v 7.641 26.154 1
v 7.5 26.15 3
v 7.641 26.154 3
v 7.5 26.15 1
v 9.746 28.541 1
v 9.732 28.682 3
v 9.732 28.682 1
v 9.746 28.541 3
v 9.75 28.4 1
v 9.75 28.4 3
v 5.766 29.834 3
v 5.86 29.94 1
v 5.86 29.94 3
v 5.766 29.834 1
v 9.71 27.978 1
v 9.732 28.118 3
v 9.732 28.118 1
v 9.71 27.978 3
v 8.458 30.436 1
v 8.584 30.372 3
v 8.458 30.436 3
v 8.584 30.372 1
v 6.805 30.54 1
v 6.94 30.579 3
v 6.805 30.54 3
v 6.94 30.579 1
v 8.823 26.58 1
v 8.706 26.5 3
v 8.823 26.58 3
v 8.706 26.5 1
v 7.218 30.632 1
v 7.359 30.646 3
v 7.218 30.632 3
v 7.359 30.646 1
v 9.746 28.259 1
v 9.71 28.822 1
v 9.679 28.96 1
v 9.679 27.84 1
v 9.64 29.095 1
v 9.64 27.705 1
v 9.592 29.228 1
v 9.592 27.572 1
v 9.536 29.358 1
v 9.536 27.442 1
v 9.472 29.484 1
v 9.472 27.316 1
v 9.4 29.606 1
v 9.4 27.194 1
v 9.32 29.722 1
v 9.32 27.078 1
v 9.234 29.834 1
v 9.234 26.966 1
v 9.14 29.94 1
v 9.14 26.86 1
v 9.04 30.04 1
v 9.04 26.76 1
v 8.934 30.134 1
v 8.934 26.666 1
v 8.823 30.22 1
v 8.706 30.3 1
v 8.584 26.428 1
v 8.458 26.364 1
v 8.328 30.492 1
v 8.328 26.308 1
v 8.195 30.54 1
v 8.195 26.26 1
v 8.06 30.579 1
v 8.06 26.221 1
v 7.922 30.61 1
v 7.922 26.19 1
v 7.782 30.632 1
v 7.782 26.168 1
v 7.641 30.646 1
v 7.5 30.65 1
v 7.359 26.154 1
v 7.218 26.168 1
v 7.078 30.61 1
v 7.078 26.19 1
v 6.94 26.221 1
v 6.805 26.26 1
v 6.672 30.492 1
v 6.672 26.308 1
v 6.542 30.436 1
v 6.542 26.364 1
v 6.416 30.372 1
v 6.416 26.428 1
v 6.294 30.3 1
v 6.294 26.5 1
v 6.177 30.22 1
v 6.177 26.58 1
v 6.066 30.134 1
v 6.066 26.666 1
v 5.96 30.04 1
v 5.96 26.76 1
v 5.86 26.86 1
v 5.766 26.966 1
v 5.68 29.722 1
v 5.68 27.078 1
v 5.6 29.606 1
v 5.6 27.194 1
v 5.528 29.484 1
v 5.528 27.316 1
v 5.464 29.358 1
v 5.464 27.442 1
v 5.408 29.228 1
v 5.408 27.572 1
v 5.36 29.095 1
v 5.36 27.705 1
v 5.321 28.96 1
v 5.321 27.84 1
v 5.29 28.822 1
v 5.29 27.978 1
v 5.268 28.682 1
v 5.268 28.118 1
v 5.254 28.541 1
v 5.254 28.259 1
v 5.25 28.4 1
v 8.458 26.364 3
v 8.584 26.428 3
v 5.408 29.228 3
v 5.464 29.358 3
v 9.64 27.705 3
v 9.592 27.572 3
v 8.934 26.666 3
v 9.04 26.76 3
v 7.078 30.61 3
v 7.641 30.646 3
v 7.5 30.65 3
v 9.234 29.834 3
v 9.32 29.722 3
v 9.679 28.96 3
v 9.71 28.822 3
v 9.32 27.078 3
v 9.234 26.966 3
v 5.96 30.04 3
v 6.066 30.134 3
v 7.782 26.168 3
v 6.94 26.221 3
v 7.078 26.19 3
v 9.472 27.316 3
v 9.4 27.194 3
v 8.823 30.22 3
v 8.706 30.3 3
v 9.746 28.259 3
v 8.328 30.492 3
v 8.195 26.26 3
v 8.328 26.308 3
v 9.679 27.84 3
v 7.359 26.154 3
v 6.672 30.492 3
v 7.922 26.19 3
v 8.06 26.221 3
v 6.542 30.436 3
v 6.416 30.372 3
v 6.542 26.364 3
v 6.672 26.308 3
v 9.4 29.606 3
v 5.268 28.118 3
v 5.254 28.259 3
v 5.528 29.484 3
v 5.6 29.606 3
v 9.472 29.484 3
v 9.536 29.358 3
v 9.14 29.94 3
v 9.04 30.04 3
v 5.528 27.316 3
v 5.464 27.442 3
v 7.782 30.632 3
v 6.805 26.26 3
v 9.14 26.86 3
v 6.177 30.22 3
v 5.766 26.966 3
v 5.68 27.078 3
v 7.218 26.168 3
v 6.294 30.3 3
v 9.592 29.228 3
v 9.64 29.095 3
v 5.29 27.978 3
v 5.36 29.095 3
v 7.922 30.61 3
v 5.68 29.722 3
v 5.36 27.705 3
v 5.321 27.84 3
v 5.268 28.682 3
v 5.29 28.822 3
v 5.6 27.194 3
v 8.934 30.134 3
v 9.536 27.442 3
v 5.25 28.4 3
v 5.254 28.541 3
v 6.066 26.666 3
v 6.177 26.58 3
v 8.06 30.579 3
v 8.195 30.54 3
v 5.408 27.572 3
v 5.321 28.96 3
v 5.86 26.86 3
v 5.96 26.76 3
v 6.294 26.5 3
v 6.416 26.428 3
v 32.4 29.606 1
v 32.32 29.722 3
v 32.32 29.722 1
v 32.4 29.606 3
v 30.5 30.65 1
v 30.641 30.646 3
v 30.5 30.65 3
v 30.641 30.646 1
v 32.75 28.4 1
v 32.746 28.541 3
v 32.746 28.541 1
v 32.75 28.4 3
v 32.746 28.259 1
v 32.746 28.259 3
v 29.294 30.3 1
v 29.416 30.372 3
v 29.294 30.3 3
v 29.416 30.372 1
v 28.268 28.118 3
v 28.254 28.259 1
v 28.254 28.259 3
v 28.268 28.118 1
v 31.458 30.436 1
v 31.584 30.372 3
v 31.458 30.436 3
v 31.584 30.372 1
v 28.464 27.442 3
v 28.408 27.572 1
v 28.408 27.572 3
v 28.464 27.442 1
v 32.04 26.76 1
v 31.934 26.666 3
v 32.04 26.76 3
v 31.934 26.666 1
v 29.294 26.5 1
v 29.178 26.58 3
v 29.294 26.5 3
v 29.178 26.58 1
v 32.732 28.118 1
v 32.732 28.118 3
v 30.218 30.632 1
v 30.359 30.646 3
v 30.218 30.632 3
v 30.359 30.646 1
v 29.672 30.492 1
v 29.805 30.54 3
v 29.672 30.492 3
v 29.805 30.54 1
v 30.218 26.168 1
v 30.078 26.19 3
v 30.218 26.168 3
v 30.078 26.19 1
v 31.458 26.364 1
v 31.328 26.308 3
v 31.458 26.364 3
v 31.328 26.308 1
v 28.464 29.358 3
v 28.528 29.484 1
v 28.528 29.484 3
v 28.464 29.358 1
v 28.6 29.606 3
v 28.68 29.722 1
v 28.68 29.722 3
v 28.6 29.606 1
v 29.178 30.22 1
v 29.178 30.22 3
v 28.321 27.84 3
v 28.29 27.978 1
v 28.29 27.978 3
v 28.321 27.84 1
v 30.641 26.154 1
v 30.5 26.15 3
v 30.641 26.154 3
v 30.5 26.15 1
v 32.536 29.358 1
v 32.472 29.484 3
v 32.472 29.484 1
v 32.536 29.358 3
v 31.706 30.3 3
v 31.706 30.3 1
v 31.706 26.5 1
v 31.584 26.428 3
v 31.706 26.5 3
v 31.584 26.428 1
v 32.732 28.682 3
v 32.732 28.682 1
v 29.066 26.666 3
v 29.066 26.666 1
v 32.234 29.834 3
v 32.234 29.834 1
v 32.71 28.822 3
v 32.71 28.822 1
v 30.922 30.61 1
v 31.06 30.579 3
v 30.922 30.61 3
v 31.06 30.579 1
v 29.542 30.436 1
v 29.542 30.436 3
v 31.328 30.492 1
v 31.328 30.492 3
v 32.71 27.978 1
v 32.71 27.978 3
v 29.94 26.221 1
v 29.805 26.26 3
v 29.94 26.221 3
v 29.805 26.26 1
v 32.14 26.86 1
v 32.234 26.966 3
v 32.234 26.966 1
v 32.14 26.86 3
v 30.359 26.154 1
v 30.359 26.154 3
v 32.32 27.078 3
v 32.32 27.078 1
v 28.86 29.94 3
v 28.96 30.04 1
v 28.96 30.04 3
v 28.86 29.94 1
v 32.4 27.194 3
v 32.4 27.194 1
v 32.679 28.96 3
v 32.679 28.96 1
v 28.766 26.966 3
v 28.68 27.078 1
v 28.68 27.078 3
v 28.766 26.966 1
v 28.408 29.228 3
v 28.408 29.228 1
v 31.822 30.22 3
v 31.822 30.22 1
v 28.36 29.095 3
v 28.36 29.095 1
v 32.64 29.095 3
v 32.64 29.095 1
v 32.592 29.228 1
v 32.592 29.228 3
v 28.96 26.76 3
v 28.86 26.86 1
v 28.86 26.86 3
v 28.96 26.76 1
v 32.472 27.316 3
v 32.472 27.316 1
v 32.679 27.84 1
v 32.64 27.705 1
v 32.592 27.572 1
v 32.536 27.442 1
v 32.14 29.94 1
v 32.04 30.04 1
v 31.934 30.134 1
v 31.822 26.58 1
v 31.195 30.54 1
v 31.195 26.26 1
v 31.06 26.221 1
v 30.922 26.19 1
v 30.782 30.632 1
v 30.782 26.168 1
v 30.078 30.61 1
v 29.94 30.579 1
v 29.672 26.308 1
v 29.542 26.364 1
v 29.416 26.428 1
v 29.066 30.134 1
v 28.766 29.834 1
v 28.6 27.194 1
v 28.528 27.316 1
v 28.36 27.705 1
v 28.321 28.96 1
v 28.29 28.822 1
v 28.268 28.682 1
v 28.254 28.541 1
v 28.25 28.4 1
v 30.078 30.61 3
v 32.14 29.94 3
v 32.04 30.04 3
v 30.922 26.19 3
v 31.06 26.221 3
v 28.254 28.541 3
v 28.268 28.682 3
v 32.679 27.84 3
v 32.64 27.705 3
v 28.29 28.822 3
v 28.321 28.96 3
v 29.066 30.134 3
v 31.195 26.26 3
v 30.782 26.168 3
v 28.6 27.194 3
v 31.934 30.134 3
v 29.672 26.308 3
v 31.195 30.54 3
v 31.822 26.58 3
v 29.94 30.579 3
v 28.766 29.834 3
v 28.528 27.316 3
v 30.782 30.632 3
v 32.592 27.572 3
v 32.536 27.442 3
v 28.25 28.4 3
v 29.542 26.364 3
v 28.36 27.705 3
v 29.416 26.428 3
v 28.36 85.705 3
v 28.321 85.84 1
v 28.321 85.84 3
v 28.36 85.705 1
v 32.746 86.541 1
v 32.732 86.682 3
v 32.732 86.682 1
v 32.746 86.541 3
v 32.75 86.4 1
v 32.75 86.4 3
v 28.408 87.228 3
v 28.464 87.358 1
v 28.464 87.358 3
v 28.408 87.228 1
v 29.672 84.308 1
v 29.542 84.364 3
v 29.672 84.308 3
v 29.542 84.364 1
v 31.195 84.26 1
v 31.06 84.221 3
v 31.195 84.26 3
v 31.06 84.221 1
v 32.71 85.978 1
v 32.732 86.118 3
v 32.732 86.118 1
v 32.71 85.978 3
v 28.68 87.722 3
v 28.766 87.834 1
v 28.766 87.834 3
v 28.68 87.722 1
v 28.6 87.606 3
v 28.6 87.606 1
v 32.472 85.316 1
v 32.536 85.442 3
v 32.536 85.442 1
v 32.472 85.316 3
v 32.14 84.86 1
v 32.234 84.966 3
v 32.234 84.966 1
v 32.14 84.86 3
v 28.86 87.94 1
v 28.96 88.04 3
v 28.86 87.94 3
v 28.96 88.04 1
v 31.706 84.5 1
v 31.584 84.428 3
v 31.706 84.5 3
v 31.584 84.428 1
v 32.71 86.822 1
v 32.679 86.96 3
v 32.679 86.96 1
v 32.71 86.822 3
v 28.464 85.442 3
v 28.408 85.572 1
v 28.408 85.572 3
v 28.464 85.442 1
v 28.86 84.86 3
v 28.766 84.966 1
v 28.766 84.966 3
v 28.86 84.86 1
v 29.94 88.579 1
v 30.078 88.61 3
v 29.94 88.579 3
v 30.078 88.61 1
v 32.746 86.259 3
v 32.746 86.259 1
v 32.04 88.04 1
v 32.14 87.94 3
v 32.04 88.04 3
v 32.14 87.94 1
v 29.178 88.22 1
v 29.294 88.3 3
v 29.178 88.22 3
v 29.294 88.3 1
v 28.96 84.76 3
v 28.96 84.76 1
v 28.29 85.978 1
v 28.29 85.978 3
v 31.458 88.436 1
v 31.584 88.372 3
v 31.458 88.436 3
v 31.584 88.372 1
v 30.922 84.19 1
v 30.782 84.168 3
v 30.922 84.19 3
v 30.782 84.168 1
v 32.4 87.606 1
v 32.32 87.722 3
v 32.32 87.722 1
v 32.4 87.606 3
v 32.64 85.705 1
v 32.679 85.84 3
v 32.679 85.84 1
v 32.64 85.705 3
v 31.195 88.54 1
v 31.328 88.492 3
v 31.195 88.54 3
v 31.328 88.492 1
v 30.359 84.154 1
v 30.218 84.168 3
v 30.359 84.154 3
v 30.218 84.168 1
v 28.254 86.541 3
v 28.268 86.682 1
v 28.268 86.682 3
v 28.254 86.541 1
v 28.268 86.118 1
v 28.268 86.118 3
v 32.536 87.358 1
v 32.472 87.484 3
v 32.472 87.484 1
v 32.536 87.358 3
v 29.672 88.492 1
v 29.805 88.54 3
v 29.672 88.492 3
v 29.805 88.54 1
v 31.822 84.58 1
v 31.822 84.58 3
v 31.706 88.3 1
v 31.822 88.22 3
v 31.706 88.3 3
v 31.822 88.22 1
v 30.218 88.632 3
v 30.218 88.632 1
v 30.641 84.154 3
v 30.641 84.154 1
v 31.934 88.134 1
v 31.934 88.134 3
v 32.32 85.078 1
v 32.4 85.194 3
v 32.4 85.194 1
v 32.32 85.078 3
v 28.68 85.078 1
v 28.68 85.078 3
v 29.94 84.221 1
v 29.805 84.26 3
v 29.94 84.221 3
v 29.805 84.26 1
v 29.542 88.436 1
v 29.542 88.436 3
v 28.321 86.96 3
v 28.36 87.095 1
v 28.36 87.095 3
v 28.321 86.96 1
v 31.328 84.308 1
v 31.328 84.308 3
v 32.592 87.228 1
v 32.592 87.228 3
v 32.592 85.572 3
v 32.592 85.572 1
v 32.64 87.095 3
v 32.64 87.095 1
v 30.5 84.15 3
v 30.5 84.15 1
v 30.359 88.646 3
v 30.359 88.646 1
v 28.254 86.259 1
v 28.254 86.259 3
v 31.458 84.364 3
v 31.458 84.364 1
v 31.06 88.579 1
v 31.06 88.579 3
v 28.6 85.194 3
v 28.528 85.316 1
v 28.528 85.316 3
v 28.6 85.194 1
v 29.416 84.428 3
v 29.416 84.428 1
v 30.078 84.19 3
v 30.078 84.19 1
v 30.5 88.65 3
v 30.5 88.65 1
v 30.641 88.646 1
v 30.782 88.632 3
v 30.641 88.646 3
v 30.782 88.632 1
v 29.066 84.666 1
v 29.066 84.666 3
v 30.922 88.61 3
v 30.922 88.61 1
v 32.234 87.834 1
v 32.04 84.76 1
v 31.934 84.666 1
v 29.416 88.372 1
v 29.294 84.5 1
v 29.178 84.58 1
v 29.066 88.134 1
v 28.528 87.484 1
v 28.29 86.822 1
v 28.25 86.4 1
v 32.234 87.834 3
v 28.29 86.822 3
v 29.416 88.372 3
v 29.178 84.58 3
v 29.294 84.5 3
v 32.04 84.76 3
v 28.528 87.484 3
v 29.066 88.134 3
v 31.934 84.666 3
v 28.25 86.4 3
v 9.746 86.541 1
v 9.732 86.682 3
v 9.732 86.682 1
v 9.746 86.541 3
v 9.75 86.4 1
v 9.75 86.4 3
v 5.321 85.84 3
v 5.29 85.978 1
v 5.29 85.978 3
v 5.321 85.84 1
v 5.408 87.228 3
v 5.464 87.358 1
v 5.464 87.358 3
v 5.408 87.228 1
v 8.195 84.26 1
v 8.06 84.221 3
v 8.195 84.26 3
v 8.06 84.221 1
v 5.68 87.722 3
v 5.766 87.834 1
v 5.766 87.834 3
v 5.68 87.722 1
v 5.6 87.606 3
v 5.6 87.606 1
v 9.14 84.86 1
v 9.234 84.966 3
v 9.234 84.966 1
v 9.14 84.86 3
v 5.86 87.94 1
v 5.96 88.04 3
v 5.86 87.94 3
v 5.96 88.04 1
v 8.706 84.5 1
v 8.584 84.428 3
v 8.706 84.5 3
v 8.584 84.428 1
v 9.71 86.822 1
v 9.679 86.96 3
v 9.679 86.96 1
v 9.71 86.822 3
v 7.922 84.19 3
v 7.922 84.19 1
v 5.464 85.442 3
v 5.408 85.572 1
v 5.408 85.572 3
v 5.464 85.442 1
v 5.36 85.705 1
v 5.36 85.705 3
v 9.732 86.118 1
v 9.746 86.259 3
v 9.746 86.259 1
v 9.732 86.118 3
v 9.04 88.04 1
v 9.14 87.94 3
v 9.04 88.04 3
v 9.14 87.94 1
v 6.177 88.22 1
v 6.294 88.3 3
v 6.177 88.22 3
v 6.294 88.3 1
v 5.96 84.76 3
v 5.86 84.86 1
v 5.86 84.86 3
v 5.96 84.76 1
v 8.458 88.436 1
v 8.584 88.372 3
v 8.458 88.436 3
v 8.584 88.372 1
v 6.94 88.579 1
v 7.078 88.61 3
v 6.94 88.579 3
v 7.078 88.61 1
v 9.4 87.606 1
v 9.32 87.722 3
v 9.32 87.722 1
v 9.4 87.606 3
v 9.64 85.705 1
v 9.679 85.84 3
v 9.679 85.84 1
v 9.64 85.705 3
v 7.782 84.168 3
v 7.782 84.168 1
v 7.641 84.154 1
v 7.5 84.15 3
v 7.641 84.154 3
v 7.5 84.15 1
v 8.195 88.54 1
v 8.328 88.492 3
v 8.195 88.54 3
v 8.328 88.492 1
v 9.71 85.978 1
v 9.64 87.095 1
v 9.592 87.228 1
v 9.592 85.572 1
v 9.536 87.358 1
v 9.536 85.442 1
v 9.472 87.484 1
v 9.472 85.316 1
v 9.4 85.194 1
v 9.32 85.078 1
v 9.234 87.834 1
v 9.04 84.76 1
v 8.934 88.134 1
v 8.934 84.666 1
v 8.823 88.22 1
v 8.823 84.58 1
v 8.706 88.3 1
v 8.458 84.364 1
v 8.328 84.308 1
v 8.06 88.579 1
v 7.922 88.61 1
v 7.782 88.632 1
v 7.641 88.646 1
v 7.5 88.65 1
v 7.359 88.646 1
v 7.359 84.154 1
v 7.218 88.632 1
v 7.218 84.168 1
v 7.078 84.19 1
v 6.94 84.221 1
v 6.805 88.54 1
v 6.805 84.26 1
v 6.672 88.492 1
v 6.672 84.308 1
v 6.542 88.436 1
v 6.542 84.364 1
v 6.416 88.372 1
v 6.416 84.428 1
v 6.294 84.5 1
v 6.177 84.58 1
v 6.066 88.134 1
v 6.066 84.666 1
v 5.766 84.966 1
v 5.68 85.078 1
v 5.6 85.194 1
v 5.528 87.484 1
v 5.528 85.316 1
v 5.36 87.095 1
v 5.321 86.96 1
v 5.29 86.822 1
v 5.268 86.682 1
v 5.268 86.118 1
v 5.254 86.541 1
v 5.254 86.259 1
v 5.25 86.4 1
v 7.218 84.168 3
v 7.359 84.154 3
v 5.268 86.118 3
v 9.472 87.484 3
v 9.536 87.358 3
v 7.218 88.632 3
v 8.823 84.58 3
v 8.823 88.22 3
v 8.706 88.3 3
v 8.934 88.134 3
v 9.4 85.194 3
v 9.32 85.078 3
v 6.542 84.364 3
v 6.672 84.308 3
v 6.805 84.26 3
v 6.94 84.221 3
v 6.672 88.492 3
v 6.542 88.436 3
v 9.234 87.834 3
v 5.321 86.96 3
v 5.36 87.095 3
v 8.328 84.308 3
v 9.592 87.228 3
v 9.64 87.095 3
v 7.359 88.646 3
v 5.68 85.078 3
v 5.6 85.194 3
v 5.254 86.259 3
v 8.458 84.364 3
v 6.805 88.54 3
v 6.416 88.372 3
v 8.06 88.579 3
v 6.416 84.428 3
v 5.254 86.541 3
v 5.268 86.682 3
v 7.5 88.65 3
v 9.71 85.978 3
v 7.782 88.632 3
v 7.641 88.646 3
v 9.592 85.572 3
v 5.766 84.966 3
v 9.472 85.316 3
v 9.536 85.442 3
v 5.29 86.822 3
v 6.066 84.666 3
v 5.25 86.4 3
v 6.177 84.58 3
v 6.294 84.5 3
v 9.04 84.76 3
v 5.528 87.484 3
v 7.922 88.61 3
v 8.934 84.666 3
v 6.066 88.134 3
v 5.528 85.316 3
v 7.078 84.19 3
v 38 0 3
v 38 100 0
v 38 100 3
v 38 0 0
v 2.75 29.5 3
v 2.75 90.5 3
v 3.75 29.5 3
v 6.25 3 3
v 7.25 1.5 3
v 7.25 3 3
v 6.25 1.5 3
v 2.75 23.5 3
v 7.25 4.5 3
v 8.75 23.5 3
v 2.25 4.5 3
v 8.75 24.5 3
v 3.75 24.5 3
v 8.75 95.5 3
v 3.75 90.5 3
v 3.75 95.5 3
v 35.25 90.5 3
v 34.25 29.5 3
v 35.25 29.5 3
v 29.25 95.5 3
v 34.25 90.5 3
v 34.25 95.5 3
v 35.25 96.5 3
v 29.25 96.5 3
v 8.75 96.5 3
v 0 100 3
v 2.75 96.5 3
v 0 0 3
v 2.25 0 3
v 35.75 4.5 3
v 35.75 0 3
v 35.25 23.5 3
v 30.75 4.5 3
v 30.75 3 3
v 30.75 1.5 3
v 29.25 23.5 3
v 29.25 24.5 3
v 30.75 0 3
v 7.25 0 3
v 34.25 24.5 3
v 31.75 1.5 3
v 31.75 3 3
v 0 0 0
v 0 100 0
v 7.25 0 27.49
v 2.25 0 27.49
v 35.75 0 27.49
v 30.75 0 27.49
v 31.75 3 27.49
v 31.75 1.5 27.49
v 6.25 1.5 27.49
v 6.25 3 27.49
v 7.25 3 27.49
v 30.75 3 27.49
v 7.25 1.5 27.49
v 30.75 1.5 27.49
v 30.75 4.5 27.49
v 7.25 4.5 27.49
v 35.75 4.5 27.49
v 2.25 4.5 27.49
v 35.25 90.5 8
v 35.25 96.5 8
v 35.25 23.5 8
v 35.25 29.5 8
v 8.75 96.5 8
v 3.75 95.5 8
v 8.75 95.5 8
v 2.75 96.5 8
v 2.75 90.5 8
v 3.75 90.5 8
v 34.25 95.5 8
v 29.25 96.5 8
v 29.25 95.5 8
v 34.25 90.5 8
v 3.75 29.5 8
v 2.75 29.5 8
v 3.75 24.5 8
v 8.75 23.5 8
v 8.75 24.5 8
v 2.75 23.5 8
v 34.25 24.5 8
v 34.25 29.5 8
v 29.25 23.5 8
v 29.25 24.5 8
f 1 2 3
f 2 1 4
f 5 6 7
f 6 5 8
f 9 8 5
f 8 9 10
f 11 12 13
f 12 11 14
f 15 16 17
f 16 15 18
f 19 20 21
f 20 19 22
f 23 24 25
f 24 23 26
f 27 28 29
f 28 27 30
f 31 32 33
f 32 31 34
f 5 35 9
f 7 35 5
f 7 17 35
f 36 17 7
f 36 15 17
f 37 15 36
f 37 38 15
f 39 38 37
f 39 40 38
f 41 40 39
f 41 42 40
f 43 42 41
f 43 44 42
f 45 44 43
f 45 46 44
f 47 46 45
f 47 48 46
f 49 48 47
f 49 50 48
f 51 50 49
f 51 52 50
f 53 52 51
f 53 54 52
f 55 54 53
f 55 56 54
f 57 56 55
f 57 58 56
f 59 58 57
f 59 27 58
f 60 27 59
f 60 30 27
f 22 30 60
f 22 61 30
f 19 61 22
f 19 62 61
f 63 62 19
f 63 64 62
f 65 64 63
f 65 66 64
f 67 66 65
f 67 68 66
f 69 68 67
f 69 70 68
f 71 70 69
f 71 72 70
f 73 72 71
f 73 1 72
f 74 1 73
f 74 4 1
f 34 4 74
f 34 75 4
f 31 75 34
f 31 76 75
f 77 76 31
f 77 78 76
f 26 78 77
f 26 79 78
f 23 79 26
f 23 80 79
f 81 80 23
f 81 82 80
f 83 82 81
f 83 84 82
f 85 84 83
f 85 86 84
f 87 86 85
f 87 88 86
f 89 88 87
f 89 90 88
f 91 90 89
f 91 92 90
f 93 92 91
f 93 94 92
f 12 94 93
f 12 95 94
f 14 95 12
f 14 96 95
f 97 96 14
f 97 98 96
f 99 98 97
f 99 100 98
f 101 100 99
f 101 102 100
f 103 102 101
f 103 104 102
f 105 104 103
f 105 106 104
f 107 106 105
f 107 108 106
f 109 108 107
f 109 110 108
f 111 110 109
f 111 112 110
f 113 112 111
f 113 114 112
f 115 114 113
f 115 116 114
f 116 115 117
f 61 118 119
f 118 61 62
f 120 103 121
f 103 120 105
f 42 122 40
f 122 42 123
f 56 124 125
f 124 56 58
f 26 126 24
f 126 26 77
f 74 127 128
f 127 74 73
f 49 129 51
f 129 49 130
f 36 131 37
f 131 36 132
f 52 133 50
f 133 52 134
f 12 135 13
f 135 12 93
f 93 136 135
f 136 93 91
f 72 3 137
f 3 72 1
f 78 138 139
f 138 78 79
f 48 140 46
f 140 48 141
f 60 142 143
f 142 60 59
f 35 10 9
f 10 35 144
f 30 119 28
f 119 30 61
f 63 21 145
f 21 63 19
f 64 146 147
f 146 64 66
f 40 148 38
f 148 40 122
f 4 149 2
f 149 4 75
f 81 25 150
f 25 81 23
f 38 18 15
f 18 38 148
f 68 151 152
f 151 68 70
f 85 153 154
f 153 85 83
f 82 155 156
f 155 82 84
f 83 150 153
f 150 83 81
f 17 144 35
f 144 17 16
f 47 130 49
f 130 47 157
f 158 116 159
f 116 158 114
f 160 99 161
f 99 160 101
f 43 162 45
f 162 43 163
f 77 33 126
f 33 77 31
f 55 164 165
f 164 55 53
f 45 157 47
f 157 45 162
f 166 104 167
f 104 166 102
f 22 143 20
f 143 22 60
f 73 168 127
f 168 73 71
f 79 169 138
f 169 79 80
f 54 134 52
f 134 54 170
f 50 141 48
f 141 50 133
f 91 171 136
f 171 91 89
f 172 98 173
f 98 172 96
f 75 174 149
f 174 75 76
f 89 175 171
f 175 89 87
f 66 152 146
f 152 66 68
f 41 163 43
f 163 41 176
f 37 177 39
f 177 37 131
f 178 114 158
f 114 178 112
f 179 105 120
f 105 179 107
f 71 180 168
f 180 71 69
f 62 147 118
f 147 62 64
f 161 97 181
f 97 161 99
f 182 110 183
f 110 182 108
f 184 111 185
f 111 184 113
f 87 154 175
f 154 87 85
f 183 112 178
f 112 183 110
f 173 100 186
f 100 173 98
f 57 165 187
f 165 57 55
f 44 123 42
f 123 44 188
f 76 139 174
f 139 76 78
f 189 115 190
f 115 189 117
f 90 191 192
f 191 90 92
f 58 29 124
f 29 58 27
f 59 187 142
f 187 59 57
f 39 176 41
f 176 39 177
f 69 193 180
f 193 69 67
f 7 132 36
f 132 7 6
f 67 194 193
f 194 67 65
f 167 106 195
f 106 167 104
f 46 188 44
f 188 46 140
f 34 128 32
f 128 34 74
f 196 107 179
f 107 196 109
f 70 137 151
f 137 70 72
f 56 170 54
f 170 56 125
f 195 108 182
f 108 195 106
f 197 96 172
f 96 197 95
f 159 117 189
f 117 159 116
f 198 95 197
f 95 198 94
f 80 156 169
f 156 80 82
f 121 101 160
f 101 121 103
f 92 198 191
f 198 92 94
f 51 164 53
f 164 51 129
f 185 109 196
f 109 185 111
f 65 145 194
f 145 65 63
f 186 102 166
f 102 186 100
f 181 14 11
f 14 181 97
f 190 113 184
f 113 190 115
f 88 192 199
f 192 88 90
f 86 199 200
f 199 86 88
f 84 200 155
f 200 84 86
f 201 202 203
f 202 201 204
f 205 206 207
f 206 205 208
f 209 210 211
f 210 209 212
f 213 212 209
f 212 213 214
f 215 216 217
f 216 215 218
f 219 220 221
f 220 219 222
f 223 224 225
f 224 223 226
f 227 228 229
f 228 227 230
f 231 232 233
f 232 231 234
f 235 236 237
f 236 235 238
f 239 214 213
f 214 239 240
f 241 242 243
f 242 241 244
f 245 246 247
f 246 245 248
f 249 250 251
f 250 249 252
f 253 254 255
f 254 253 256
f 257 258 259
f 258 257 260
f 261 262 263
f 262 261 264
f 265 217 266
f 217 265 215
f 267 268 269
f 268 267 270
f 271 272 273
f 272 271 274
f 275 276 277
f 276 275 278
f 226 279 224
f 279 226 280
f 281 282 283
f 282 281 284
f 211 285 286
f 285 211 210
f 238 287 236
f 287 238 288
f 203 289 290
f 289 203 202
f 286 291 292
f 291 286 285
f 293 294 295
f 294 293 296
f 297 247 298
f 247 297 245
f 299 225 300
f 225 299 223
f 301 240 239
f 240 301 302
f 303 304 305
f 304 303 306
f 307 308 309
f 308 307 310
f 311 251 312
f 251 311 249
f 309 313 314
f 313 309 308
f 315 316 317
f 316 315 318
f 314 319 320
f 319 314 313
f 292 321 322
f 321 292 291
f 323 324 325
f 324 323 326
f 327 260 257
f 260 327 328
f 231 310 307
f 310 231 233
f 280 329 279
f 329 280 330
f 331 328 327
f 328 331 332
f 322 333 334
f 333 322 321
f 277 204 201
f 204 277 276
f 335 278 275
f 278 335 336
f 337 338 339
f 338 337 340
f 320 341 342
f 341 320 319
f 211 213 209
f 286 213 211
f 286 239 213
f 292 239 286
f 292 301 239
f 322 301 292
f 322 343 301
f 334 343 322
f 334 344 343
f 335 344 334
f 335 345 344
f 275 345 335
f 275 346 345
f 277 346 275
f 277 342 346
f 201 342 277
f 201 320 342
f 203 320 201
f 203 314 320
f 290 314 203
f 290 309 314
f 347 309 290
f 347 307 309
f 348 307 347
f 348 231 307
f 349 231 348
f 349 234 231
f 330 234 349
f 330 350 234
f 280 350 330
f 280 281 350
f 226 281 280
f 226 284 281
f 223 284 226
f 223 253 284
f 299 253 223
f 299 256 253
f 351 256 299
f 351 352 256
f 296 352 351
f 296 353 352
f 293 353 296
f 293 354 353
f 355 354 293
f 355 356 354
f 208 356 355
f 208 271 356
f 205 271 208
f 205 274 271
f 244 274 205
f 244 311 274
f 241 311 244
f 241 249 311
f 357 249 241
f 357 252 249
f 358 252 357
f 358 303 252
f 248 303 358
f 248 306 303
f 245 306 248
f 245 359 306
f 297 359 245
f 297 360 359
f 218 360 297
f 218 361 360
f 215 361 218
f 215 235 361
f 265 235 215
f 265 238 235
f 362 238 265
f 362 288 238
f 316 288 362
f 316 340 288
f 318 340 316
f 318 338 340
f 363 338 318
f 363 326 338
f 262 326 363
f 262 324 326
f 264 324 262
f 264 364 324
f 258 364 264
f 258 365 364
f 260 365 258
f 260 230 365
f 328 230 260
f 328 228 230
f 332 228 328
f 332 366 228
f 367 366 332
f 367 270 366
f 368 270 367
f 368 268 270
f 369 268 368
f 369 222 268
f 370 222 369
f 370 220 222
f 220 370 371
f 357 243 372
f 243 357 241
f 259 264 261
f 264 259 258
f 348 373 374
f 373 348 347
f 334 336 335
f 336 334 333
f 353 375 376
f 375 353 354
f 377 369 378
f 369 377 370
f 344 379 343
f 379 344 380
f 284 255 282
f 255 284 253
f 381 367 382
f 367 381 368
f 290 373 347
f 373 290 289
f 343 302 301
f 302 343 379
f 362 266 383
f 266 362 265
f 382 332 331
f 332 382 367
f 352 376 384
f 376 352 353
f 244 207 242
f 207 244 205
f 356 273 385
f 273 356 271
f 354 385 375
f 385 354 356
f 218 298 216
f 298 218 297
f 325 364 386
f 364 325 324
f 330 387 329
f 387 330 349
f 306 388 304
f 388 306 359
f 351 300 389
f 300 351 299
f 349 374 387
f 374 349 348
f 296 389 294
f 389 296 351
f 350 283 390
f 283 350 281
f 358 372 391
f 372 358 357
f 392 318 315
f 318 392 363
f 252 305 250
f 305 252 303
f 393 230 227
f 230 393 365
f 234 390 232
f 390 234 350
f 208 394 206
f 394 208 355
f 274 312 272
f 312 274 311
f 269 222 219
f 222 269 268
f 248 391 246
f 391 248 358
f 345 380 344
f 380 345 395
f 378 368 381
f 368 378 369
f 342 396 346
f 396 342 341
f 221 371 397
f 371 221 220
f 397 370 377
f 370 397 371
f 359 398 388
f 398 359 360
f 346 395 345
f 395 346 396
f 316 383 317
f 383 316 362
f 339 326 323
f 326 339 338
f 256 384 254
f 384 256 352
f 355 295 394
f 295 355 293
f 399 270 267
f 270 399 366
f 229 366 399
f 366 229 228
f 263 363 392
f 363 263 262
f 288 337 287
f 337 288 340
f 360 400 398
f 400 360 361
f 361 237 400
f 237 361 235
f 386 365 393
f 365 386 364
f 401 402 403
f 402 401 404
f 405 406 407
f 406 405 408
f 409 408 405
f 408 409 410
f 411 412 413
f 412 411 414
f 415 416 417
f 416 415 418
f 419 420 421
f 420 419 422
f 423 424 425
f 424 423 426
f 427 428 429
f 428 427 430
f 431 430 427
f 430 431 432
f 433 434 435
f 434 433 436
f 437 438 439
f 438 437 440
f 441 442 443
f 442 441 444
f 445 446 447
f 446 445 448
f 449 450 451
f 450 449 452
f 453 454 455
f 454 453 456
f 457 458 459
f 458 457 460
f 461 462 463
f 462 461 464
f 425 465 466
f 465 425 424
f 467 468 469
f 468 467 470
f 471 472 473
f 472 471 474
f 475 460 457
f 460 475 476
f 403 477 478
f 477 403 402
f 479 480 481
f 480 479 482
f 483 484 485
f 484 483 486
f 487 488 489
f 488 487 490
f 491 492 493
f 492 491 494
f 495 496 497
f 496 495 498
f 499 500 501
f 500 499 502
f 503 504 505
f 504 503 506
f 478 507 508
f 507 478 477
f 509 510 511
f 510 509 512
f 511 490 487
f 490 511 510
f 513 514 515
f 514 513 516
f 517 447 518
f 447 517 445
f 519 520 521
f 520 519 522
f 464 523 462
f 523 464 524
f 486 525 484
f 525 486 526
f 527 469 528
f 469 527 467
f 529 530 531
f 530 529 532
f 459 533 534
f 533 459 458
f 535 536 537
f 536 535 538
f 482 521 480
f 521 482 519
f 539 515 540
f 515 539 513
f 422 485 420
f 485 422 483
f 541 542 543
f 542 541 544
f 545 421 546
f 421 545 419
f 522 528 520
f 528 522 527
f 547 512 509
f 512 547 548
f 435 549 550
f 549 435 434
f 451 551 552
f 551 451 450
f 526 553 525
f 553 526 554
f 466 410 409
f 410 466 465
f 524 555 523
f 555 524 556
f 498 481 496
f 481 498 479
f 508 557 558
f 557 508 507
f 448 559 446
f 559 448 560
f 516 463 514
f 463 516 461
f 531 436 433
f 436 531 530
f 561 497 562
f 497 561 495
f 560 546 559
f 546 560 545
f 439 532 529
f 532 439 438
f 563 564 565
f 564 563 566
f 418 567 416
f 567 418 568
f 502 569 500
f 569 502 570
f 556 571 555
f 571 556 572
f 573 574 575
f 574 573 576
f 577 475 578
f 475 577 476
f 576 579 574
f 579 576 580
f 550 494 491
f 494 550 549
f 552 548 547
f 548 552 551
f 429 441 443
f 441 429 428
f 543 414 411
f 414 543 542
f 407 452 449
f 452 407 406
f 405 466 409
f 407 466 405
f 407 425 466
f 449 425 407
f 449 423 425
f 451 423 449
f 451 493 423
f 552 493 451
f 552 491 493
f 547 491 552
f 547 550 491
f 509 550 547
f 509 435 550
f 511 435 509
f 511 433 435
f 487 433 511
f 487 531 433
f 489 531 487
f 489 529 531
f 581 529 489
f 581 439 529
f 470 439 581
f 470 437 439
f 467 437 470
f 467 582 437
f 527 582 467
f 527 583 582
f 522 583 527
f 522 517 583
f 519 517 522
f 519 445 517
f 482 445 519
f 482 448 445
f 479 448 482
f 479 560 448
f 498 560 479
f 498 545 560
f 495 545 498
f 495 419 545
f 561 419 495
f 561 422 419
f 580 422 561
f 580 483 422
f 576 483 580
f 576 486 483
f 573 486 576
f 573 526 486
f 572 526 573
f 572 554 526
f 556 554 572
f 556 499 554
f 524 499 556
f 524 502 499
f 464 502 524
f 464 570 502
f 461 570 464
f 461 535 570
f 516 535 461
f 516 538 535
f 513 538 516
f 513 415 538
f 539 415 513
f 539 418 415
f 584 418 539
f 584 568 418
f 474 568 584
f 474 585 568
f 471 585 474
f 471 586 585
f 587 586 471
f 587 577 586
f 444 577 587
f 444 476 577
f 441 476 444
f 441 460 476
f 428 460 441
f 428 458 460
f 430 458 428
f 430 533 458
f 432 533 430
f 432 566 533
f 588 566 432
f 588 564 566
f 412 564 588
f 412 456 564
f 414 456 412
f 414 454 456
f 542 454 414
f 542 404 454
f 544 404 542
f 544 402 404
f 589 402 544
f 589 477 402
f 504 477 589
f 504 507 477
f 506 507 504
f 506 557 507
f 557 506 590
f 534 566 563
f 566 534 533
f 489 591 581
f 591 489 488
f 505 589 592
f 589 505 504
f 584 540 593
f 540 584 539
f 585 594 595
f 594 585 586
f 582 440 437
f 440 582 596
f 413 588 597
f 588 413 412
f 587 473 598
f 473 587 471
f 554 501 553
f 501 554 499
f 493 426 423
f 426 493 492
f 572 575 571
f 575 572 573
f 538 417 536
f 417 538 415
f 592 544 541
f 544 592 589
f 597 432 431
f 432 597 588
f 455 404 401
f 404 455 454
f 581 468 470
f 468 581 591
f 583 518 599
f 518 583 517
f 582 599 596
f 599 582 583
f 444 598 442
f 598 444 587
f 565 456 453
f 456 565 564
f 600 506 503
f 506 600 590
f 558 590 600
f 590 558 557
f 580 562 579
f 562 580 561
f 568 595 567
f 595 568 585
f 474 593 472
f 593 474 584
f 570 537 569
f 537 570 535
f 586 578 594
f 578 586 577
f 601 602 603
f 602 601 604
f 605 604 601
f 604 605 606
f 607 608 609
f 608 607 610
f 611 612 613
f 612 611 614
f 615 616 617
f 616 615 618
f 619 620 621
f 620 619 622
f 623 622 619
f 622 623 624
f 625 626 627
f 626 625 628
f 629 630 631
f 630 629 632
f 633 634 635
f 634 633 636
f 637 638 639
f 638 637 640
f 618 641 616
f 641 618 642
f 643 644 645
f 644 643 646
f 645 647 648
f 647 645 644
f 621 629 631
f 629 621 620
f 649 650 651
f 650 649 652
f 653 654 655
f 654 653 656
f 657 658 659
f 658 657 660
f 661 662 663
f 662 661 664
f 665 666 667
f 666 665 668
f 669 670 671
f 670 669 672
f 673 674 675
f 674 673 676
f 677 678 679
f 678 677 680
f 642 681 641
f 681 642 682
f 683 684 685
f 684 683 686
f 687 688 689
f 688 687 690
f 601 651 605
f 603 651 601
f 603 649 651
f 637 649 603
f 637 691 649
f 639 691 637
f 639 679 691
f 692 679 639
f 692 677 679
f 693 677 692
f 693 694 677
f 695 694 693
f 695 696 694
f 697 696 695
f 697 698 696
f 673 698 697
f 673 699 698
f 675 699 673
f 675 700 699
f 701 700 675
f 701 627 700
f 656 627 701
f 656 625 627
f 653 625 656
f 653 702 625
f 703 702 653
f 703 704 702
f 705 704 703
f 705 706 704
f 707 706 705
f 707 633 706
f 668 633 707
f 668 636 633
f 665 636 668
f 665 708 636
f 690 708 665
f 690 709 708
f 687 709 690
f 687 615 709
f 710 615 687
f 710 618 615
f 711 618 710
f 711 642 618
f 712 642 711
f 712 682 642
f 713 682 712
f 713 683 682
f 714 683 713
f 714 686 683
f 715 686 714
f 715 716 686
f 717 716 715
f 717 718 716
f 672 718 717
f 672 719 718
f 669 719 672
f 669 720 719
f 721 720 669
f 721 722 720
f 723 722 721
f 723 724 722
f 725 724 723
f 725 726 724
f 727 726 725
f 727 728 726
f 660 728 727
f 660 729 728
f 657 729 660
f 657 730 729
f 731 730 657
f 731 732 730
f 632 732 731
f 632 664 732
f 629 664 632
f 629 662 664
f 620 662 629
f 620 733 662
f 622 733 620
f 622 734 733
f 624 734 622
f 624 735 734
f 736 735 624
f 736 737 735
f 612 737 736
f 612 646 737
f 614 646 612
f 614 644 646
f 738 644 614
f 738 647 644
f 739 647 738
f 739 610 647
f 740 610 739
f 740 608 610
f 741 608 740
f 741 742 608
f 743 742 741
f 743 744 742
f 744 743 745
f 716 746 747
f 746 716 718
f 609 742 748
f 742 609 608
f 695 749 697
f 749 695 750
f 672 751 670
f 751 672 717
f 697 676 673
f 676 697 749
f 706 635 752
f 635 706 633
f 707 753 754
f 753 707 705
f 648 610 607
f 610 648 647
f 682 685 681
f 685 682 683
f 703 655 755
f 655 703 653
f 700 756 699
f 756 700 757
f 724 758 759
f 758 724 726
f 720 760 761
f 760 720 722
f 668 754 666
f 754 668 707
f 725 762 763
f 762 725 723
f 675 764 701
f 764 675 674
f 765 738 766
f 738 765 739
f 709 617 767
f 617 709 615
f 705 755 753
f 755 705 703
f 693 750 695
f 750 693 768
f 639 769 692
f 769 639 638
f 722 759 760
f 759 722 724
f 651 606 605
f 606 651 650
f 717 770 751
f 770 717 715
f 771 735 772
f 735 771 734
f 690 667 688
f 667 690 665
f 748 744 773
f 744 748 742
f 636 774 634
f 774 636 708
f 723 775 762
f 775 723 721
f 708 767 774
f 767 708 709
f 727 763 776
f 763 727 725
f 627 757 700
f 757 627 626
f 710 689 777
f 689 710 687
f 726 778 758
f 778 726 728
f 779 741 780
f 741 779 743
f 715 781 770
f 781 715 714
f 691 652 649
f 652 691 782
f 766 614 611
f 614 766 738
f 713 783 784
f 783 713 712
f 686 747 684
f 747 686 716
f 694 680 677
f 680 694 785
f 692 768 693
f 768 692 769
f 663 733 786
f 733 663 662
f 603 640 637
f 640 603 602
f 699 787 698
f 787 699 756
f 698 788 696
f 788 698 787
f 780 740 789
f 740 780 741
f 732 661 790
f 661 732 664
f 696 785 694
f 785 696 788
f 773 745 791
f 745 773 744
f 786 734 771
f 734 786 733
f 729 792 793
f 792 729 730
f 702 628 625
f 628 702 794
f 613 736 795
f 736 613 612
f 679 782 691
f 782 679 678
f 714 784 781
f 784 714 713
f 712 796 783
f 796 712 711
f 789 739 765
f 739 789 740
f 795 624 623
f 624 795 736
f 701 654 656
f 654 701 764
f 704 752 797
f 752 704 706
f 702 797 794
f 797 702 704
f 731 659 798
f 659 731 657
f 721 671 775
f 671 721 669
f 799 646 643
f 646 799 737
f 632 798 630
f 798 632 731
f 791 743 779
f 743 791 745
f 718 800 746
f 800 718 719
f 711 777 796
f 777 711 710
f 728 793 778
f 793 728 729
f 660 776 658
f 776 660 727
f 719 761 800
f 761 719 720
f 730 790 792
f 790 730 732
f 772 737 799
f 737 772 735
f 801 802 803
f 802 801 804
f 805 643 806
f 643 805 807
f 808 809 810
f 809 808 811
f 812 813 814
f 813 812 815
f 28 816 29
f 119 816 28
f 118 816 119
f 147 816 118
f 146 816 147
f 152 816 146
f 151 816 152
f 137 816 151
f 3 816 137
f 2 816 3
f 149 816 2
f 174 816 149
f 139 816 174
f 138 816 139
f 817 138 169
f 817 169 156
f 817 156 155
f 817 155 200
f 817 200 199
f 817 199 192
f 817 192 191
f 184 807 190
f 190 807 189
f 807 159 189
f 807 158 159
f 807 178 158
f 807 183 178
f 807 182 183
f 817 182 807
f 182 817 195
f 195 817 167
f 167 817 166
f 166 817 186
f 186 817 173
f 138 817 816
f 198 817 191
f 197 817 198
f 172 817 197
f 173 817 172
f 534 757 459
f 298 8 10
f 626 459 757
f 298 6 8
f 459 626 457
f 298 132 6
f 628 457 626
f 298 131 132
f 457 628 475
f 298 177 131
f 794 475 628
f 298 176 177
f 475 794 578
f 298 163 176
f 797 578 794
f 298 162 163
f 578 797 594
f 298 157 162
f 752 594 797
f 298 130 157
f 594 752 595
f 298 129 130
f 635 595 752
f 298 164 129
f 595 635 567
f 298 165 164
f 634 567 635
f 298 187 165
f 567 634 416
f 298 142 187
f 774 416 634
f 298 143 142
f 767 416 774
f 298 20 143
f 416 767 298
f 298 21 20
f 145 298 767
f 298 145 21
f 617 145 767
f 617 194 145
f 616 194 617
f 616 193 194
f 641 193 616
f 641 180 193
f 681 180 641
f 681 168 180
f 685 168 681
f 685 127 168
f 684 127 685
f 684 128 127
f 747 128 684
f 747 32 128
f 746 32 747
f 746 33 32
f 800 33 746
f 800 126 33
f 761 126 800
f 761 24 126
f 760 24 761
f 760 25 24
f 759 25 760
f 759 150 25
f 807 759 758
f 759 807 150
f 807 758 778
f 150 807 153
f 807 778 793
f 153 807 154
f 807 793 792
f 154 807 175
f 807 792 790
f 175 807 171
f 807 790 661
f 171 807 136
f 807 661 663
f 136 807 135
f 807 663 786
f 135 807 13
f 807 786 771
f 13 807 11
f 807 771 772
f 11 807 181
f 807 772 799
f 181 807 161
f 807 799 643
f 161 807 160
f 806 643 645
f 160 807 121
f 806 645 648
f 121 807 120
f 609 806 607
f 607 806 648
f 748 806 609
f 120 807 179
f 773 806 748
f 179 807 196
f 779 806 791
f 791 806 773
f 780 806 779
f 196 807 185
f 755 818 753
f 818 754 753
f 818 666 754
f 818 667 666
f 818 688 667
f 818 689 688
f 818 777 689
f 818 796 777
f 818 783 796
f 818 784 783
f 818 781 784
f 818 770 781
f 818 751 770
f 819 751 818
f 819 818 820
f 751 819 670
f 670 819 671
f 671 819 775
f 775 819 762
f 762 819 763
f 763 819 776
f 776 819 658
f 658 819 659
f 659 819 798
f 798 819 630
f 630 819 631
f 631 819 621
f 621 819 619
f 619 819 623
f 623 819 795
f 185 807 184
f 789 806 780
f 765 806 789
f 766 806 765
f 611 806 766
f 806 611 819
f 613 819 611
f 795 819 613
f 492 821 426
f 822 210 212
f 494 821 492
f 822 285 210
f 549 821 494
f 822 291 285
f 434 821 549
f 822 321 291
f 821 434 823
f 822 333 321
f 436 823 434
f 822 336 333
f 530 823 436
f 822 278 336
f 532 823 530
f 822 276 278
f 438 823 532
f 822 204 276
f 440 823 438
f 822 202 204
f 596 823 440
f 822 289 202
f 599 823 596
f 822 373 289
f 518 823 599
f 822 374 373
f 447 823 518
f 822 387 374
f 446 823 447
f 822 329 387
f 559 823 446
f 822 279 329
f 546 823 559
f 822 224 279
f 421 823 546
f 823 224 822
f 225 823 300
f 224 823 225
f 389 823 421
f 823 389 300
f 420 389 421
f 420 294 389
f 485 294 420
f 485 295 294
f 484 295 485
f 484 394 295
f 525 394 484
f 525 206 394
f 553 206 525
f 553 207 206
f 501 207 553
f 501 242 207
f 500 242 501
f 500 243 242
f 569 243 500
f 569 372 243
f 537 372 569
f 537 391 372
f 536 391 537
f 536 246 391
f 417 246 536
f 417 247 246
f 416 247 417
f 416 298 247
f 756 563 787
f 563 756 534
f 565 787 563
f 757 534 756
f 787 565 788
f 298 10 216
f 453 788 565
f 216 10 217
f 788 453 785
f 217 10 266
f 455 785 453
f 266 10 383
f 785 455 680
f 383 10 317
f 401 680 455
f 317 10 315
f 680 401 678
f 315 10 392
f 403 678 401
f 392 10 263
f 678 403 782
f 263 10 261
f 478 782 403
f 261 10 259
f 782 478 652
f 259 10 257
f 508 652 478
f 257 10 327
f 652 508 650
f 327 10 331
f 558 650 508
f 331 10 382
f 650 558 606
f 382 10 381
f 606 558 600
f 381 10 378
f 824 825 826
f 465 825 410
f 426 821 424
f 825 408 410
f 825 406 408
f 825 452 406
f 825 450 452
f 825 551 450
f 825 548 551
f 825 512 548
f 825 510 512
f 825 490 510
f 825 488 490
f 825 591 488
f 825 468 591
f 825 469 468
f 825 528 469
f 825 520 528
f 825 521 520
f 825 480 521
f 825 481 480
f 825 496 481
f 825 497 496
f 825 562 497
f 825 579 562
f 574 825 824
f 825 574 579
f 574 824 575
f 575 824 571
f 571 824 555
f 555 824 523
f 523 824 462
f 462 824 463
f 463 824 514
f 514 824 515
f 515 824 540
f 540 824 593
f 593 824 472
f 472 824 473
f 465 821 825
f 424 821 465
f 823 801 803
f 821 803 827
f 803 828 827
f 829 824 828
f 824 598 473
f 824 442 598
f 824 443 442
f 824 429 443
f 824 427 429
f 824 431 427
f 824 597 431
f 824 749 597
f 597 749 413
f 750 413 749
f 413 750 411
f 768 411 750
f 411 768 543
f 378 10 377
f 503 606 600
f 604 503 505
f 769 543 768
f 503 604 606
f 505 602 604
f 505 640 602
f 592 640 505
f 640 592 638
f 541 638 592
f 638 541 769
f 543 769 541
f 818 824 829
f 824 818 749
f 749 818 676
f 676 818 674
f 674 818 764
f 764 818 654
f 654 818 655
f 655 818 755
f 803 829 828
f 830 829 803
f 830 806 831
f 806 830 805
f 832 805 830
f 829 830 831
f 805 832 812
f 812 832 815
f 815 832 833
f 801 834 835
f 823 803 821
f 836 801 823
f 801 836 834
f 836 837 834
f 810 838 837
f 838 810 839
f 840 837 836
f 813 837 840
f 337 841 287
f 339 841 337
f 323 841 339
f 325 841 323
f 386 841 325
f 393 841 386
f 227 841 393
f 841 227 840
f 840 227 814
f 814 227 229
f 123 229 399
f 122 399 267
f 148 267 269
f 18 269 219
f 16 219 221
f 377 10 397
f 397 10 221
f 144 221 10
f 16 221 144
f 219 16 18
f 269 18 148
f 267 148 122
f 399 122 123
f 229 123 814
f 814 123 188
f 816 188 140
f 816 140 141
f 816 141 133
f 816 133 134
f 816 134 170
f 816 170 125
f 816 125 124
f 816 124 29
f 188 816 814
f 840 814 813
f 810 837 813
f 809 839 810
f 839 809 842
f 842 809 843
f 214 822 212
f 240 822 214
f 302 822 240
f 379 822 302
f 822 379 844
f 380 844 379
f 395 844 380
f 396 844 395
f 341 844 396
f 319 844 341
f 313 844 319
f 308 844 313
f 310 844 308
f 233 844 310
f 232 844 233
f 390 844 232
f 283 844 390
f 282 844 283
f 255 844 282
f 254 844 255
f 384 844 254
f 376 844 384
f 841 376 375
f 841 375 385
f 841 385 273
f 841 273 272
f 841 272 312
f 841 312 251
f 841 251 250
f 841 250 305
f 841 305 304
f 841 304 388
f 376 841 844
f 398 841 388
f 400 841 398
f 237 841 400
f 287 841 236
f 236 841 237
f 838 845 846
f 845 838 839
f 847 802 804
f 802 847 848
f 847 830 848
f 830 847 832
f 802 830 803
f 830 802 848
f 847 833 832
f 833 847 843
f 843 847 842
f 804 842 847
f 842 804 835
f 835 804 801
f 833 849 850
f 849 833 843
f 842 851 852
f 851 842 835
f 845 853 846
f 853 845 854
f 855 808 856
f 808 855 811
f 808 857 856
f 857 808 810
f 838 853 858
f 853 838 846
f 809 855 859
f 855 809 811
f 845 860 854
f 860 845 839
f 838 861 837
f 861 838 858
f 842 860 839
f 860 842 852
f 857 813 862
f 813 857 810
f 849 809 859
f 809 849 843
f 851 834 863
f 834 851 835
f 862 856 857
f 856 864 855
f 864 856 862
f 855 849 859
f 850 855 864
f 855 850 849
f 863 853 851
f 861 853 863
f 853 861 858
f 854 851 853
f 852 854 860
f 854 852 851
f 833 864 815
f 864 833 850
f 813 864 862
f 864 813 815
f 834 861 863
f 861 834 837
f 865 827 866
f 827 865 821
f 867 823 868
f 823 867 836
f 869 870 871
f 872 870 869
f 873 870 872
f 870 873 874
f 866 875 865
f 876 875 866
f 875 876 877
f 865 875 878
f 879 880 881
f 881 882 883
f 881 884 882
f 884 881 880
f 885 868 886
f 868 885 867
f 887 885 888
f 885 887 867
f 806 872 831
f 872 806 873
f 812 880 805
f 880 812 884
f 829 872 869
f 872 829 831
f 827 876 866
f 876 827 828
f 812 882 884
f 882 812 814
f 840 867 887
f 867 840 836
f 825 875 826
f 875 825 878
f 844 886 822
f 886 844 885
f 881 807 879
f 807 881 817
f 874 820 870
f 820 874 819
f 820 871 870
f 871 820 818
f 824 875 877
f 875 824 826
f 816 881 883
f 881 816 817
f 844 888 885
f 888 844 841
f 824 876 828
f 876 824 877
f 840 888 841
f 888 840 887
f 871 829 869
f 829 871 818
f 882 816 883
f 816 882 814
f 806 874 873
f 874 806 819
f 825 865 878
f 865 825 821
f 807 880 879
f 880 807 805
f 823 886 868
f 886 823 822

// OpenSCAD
//temp mounting for pi ups lite v1.2 and pi cam
$fn = 100 ;
wiggle = .01 ;
basePlate = [38,100,3] ;
basePlateCenter = [basePlate.x/2, basePlate.y/2, basePlate.z] ;
//test pos center of baseplate
//translate(basePlateCenter) sphere(d=5);
camPCB = [25,1,24]+[.5,.5,.5] ; //measure and add wiggle
camDiff = camPCB + [-2,3,0]; // shorter on the sides, deeper for subtraction
slotDiff = [8,0,0] ;
holeD = 4.5 ;
piHoleFootprint = [23, 58, 0] ; //the position of the screws the look out the bottom of the ups hat.
piPCBFootprint = [30, 70.5, 0] + [.5,.5,0]; //the outside dimensions of the ups hat (plus some wiggle).
piPCBCenter = piPCBFootprint/2; //Center of the pi ups hat
piHoleCenter = piHoleFootprint/2 - [0, -2.6, 0]; // center the holes then move them in relation to the PCB
piOffset = [0,10,0] ; //position the pi back from the center
piHolePos = basePlateCenter - piHoleCenter + piOffset + [0,0,-2] ; // sink the holes
piPCBPos = basePlateCenter + piOffset ;
holderVar = [10,2,5] ; //tab length (symetrical "L"), tab strength, tab Height
module cam(size,diff) {
    translate([size.x/2,diff.y/2,size.z/2]) {
        cube(size,center=true);     //the cam PCB
        cube(diff + [0,wiggle,0],center=true);
    }     
}
module holder (footprint,var) {  
    wiggleH = [0,0,wiggle] ;
    tabL = var[0] ;
    tabThick = var[1] ;
    tabH = [0, 0, var[2]] ;
    translate(tabH/2) difference(){
        cube(footprint + tabH + [tabThick,tabThick,0], center=true);
        cube(footprint + tabH + wiggleH , center=true);
        cube(footprint + tabH + wiggleH + [- tabL, + tabThick + wiggle, 0], center=true);
        cube(footprint + tabH + wiggleH + [+ tabThick + wiggle, -tabL, 0], center=true);
    }
}

module rectangular_holes(spacing, hole_h, hole_d) {
    positions = [[0, 0], [spacing[0], 0], [spacing[0], spacing[1]], [0, spacing[1]]];
    for (pos = positions) {
        translate([pos[0], pos[1], 0]) 
            cylinder(h=hole_h, d=hole_d);
    }
}
//baseplate
difference(){
    cube(basePlate) ;
    //holes first
    translate(piHolePos){
        rectangular_holes(piHoleFootprint, basePlate.z, holeD);
    }
}
//slot for cam
translate([basePlate.x/2-camPCB.x/2,0,basePlate.z]) {
    difference() {
        translate(-slotDiff/2) cube([camPCB.x,camDiff.y,camPCB.z-wiggle]+slotDiff);
        cam(camPCB,camDiff);
    }
}
translate(piPCBPos) holder(piPCBFootprint,holderVar);
